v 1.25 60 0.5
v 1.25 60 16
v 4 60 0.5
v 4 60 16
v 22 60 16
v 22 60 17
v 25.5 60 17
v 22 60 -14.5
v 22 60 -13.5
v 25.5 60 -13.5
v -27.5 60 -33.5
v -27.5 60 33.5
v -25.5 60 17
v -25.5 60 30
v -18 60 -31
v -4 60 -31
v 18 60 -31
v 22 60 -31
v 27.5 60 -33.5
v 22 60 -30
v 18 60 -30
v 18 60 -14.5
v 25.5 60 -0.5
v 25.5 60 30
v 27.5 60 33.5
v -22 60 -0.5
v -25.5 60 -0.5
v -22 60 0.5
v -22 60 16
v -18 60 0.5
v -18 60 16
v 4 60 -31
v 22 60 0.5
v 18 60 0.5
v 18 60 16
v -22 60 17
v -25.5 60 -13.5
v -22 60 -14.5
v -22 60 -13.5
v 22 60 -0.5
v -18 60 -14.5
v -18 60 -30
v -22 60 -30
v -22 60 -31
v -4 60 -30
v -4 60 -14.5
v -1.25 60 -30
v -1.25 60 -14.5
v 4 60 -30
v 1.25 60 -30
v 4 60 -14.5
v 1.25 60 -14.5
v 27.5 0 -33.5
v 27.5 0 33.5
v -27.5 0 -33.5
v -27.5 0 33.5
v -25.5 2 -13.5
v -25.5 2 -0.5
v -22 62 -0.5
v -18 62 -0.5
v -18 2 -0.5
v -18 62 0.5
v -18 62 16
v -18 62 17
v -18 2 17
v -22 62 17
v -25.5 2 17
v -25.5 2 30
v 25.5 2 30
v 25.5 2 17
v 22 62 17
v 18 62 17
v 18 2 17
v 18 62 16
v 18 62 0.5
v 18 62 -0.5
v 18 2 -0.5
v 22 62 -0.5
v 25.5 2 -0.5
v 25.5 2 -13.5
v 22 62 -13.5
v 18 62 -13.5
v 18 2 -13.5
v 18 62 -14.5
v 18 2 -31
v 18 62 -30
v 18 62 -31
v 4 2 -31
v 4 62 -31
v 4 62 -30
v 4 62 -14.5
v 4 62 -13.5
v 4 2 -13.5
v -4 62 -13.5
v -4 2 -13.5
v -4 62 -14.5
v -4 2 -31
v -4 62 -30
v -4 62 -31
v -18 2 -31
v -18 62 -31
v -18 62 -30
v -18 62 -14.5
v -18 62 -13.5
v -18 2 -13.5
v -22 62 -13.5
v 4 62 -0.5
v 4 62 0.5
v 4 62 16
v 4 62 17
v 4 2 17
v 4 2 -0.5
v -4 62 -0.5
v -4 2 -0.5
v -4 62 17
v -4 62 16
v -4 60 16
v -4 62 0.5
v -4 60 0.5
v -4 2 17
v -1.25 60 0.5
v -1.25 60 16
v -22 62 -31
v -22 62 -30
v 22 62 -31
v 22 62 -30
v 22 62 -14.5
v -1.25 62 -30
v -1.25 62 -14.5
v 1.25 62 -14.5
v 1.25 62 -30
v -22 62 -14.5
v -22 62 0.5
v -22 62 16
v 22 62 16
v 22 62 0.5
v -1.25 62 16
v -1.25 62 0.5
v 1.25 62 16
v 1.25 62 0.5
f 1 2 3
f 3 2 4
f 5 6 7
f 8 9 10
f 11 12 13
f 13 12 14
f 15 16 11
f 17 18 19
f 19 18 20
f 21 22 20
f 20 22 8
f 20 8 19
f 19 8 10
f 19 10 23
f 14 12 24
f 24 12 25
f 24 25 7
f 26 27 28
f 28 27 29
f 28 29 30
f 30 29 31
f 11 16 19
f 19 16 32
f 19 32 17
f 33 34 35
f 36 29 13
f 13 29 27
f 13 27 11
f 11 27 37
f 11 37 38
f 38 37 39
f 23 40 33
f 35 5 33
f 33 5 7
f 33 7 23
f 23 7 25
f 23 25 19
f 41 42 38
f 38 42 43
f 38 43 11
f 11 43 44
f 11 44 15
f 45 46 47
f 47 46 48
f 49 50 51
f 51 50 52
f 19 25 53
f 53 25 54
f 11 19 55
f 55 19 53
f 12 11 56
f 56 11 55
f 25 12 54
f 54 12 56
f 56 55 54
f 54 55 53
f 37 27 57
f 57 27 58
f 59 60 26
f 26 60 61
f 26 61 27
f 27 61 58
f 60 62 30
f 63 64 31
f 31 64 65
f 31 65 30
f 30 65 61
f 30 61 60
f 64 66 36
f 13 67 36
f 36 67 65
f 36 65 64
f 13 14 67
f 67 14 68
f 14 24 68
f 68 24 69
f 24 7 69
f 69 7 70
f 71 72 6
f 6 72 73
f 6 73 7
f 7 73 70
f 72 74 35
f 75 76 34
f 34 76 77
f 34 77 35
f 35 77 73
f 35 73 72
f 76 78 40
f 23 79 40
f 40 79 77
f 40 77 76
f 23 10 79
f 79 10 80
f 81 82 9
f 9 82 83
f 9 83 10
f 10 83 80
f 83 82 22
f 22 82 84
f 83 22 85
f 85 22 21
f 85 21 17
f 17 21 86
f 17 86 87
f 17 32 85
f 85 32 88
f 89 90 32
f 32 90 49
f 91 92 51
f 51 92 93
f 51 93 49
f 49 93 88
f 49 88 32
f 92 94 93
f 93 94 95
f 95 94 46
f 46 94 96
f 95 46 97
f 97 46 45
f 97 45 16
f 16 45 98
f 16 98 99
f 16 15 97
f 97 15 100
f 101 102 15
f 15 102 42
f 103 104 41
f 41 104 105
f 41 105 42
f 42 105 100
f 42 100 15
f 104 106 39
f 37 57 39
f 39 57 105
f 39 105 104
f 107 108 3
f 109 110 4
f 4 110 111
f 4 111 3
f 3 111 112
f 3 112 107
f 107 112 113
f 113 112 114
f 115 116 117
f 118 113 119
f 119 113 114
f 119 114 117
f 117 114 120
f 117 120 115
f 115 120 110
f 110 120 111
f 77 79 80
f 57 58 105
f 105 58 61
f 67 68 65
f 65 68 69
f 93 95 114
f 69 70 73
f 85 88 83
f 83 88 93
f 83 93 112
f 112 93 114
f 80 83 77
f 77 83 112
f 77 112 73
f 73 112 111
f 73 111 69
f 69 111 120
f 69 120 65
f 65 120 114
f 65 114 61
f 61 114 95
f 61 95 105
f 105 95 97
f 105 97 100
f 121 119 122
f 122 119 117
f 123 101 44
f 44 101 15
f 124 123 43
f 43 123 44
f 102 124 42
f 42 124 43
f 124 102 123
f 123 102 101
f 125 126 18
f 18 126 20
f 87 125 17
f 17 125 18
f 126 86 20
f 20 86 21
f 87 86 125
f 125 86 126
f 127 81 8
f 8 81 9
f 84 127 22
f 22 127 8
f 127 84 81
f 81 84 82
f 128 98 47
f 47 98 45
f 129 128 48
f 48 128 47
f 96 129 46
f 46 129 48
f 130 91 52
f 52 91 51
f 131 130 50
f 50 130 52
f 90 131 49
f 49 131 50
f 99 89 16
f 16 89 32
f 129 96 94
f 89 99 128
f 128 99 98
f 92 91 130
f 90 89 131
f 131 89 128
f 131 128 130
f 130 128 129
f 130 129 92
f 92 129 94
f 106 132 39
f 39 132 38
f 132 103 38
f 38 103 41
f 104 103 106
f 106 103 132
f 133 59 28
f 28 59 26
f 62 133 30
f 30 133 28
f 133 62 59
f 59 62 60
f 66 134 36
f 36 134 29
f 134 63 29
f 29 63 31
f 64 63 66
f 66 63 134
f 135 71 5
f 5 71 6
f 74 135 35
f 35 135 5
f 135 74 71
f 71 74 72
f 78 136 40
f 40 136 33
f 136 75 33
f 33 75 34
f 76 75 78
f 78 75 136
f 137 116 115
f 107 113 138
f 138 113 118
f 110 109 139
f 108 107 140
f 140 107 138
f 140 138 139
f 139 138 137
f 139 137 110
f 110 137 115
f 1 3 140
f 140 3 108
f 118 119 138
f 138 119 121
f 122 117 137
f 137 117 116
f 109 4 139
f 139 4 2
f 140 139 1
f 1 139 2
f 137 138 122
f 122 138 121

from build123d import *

# Parameters (mm, degrees)
SKETCH1_W           = 55
SKETCH1_H           = 67
BOSS_EXTRUDE1_DEPTH = 60
SKETCH3_W           = 8
SKETCH3_H           = 17.5
CUT_EXTRUDE3_DEPTH  = 58
SKETCH4_W           = 4
SKETCH4_H           = 1
SKETCH4_W_2         = 2.5
SKETCH4_H_2         = 15.5
SKETCH4_W_3         = 8
BOSS_EXTRUDE2_DEPTH = 2


with BuildPart() as part:
    # Sketch1 → Boss-Extrude1 (new body)
    with BuildSketch(Plane(origin=(0, 0, 0), x_dir=(1, 0, 0), z_dir=(0, 1, 0))):
        Rectangle(SKETCH1_W, SKETCH1_H)
    extrude(amount=BOSS_EXTRUDE1_DEPTH)

    # Sketch3 → Cut-Extrude3 (cut)
    with BuildSketch(Plane(origin=(0, 60, 0), x_dir=(1, 0, 0), z_dir=(0, 1, 0))):
        Polygon((-18, 13.5), (-18, 31), (-4, 31), (-4, 13.5), (4, 13.5), (4, 31), (18, 31), (18, 13.5), (25.5, 13.5), (25.5, 0.5), (18, 0.5), (18, -17), (25.5, -17), (25.5, -30), (-25.5, -30), (-25.5, -17), (-18, -17), (-18, 0.5), (-25.5, 0.5), (-25.5, 13.5), align=None)
        with Locations((0, -8.25)):
            Rectangle(SKETCH3_W, SKETCH3_H, mode=Mode.SUBTRACT)
    extrude(amount=-CUT_EXTRUDE3_DEPTH, mode=Mode.SUBTRACT)

    # Sketch4 → Boss-Extrude2 (add)
    with BuildSketch(Plane(origin=(0, 60, 0), x_dir=(1, 0, 0), z_dir=(0, 1, 0))):
        with Locations((-20, 30.5)):
            Rectangle(SKETCH4_W, SKETCH4_H)
        Polygon((4, 31), (-4, 31), (-4, 30), (-1.25, 30), (1.25, 30), (4, 30), align=None)
        with Locations((0, 22.25)):
            Rectangle(SKETCH4_W_2, SKETCH4_H_2)
        with Locations((20, 30.5)):
            Rectangle(SKETCH4_W, SKETCH4_H)
        with Locations((20, 14)):
            Rectangle(SKETCH4_W, SKETCH4_H)
        Polygon((-1.25, 14.5), (-4, 14.5), (-4, 13.5), (4, 13.5), (4, 14.5), (1.25, 14.5), align=None)
        with Locations((-20, 14)):
            Rectangle(SKETCH4_W, SKETCH4_H)
        with Locations((-20, 0)):
            Rectangle(SKETCH4_W, SKETCH4_H)
        Rectangle(SKETCH4_W_3, SKETCH4_H)
        with Locations((20, 0)):
            Rectangle(SKETCH4_W, SKETCH4_H)
        with Locations((20, -16.5)):
            Rectangle(SKETCH4_W, SKETCH4_H)
        with Locations((-20, -16.5)):
            Rectangle(SKETCH4_W, SKETCH4_H)
        with Locations((0, -16.5)):
            Rectangle(SKETCH4_W_3, SKETCH4_H)
        with Locations((0, -8.25)):
            Rectangle(SKETCH4_W_2, SKETCH4_H_2)
    extrude(amount=BOSS_EXTRUDE2_DEPTH)


solid = part.part
